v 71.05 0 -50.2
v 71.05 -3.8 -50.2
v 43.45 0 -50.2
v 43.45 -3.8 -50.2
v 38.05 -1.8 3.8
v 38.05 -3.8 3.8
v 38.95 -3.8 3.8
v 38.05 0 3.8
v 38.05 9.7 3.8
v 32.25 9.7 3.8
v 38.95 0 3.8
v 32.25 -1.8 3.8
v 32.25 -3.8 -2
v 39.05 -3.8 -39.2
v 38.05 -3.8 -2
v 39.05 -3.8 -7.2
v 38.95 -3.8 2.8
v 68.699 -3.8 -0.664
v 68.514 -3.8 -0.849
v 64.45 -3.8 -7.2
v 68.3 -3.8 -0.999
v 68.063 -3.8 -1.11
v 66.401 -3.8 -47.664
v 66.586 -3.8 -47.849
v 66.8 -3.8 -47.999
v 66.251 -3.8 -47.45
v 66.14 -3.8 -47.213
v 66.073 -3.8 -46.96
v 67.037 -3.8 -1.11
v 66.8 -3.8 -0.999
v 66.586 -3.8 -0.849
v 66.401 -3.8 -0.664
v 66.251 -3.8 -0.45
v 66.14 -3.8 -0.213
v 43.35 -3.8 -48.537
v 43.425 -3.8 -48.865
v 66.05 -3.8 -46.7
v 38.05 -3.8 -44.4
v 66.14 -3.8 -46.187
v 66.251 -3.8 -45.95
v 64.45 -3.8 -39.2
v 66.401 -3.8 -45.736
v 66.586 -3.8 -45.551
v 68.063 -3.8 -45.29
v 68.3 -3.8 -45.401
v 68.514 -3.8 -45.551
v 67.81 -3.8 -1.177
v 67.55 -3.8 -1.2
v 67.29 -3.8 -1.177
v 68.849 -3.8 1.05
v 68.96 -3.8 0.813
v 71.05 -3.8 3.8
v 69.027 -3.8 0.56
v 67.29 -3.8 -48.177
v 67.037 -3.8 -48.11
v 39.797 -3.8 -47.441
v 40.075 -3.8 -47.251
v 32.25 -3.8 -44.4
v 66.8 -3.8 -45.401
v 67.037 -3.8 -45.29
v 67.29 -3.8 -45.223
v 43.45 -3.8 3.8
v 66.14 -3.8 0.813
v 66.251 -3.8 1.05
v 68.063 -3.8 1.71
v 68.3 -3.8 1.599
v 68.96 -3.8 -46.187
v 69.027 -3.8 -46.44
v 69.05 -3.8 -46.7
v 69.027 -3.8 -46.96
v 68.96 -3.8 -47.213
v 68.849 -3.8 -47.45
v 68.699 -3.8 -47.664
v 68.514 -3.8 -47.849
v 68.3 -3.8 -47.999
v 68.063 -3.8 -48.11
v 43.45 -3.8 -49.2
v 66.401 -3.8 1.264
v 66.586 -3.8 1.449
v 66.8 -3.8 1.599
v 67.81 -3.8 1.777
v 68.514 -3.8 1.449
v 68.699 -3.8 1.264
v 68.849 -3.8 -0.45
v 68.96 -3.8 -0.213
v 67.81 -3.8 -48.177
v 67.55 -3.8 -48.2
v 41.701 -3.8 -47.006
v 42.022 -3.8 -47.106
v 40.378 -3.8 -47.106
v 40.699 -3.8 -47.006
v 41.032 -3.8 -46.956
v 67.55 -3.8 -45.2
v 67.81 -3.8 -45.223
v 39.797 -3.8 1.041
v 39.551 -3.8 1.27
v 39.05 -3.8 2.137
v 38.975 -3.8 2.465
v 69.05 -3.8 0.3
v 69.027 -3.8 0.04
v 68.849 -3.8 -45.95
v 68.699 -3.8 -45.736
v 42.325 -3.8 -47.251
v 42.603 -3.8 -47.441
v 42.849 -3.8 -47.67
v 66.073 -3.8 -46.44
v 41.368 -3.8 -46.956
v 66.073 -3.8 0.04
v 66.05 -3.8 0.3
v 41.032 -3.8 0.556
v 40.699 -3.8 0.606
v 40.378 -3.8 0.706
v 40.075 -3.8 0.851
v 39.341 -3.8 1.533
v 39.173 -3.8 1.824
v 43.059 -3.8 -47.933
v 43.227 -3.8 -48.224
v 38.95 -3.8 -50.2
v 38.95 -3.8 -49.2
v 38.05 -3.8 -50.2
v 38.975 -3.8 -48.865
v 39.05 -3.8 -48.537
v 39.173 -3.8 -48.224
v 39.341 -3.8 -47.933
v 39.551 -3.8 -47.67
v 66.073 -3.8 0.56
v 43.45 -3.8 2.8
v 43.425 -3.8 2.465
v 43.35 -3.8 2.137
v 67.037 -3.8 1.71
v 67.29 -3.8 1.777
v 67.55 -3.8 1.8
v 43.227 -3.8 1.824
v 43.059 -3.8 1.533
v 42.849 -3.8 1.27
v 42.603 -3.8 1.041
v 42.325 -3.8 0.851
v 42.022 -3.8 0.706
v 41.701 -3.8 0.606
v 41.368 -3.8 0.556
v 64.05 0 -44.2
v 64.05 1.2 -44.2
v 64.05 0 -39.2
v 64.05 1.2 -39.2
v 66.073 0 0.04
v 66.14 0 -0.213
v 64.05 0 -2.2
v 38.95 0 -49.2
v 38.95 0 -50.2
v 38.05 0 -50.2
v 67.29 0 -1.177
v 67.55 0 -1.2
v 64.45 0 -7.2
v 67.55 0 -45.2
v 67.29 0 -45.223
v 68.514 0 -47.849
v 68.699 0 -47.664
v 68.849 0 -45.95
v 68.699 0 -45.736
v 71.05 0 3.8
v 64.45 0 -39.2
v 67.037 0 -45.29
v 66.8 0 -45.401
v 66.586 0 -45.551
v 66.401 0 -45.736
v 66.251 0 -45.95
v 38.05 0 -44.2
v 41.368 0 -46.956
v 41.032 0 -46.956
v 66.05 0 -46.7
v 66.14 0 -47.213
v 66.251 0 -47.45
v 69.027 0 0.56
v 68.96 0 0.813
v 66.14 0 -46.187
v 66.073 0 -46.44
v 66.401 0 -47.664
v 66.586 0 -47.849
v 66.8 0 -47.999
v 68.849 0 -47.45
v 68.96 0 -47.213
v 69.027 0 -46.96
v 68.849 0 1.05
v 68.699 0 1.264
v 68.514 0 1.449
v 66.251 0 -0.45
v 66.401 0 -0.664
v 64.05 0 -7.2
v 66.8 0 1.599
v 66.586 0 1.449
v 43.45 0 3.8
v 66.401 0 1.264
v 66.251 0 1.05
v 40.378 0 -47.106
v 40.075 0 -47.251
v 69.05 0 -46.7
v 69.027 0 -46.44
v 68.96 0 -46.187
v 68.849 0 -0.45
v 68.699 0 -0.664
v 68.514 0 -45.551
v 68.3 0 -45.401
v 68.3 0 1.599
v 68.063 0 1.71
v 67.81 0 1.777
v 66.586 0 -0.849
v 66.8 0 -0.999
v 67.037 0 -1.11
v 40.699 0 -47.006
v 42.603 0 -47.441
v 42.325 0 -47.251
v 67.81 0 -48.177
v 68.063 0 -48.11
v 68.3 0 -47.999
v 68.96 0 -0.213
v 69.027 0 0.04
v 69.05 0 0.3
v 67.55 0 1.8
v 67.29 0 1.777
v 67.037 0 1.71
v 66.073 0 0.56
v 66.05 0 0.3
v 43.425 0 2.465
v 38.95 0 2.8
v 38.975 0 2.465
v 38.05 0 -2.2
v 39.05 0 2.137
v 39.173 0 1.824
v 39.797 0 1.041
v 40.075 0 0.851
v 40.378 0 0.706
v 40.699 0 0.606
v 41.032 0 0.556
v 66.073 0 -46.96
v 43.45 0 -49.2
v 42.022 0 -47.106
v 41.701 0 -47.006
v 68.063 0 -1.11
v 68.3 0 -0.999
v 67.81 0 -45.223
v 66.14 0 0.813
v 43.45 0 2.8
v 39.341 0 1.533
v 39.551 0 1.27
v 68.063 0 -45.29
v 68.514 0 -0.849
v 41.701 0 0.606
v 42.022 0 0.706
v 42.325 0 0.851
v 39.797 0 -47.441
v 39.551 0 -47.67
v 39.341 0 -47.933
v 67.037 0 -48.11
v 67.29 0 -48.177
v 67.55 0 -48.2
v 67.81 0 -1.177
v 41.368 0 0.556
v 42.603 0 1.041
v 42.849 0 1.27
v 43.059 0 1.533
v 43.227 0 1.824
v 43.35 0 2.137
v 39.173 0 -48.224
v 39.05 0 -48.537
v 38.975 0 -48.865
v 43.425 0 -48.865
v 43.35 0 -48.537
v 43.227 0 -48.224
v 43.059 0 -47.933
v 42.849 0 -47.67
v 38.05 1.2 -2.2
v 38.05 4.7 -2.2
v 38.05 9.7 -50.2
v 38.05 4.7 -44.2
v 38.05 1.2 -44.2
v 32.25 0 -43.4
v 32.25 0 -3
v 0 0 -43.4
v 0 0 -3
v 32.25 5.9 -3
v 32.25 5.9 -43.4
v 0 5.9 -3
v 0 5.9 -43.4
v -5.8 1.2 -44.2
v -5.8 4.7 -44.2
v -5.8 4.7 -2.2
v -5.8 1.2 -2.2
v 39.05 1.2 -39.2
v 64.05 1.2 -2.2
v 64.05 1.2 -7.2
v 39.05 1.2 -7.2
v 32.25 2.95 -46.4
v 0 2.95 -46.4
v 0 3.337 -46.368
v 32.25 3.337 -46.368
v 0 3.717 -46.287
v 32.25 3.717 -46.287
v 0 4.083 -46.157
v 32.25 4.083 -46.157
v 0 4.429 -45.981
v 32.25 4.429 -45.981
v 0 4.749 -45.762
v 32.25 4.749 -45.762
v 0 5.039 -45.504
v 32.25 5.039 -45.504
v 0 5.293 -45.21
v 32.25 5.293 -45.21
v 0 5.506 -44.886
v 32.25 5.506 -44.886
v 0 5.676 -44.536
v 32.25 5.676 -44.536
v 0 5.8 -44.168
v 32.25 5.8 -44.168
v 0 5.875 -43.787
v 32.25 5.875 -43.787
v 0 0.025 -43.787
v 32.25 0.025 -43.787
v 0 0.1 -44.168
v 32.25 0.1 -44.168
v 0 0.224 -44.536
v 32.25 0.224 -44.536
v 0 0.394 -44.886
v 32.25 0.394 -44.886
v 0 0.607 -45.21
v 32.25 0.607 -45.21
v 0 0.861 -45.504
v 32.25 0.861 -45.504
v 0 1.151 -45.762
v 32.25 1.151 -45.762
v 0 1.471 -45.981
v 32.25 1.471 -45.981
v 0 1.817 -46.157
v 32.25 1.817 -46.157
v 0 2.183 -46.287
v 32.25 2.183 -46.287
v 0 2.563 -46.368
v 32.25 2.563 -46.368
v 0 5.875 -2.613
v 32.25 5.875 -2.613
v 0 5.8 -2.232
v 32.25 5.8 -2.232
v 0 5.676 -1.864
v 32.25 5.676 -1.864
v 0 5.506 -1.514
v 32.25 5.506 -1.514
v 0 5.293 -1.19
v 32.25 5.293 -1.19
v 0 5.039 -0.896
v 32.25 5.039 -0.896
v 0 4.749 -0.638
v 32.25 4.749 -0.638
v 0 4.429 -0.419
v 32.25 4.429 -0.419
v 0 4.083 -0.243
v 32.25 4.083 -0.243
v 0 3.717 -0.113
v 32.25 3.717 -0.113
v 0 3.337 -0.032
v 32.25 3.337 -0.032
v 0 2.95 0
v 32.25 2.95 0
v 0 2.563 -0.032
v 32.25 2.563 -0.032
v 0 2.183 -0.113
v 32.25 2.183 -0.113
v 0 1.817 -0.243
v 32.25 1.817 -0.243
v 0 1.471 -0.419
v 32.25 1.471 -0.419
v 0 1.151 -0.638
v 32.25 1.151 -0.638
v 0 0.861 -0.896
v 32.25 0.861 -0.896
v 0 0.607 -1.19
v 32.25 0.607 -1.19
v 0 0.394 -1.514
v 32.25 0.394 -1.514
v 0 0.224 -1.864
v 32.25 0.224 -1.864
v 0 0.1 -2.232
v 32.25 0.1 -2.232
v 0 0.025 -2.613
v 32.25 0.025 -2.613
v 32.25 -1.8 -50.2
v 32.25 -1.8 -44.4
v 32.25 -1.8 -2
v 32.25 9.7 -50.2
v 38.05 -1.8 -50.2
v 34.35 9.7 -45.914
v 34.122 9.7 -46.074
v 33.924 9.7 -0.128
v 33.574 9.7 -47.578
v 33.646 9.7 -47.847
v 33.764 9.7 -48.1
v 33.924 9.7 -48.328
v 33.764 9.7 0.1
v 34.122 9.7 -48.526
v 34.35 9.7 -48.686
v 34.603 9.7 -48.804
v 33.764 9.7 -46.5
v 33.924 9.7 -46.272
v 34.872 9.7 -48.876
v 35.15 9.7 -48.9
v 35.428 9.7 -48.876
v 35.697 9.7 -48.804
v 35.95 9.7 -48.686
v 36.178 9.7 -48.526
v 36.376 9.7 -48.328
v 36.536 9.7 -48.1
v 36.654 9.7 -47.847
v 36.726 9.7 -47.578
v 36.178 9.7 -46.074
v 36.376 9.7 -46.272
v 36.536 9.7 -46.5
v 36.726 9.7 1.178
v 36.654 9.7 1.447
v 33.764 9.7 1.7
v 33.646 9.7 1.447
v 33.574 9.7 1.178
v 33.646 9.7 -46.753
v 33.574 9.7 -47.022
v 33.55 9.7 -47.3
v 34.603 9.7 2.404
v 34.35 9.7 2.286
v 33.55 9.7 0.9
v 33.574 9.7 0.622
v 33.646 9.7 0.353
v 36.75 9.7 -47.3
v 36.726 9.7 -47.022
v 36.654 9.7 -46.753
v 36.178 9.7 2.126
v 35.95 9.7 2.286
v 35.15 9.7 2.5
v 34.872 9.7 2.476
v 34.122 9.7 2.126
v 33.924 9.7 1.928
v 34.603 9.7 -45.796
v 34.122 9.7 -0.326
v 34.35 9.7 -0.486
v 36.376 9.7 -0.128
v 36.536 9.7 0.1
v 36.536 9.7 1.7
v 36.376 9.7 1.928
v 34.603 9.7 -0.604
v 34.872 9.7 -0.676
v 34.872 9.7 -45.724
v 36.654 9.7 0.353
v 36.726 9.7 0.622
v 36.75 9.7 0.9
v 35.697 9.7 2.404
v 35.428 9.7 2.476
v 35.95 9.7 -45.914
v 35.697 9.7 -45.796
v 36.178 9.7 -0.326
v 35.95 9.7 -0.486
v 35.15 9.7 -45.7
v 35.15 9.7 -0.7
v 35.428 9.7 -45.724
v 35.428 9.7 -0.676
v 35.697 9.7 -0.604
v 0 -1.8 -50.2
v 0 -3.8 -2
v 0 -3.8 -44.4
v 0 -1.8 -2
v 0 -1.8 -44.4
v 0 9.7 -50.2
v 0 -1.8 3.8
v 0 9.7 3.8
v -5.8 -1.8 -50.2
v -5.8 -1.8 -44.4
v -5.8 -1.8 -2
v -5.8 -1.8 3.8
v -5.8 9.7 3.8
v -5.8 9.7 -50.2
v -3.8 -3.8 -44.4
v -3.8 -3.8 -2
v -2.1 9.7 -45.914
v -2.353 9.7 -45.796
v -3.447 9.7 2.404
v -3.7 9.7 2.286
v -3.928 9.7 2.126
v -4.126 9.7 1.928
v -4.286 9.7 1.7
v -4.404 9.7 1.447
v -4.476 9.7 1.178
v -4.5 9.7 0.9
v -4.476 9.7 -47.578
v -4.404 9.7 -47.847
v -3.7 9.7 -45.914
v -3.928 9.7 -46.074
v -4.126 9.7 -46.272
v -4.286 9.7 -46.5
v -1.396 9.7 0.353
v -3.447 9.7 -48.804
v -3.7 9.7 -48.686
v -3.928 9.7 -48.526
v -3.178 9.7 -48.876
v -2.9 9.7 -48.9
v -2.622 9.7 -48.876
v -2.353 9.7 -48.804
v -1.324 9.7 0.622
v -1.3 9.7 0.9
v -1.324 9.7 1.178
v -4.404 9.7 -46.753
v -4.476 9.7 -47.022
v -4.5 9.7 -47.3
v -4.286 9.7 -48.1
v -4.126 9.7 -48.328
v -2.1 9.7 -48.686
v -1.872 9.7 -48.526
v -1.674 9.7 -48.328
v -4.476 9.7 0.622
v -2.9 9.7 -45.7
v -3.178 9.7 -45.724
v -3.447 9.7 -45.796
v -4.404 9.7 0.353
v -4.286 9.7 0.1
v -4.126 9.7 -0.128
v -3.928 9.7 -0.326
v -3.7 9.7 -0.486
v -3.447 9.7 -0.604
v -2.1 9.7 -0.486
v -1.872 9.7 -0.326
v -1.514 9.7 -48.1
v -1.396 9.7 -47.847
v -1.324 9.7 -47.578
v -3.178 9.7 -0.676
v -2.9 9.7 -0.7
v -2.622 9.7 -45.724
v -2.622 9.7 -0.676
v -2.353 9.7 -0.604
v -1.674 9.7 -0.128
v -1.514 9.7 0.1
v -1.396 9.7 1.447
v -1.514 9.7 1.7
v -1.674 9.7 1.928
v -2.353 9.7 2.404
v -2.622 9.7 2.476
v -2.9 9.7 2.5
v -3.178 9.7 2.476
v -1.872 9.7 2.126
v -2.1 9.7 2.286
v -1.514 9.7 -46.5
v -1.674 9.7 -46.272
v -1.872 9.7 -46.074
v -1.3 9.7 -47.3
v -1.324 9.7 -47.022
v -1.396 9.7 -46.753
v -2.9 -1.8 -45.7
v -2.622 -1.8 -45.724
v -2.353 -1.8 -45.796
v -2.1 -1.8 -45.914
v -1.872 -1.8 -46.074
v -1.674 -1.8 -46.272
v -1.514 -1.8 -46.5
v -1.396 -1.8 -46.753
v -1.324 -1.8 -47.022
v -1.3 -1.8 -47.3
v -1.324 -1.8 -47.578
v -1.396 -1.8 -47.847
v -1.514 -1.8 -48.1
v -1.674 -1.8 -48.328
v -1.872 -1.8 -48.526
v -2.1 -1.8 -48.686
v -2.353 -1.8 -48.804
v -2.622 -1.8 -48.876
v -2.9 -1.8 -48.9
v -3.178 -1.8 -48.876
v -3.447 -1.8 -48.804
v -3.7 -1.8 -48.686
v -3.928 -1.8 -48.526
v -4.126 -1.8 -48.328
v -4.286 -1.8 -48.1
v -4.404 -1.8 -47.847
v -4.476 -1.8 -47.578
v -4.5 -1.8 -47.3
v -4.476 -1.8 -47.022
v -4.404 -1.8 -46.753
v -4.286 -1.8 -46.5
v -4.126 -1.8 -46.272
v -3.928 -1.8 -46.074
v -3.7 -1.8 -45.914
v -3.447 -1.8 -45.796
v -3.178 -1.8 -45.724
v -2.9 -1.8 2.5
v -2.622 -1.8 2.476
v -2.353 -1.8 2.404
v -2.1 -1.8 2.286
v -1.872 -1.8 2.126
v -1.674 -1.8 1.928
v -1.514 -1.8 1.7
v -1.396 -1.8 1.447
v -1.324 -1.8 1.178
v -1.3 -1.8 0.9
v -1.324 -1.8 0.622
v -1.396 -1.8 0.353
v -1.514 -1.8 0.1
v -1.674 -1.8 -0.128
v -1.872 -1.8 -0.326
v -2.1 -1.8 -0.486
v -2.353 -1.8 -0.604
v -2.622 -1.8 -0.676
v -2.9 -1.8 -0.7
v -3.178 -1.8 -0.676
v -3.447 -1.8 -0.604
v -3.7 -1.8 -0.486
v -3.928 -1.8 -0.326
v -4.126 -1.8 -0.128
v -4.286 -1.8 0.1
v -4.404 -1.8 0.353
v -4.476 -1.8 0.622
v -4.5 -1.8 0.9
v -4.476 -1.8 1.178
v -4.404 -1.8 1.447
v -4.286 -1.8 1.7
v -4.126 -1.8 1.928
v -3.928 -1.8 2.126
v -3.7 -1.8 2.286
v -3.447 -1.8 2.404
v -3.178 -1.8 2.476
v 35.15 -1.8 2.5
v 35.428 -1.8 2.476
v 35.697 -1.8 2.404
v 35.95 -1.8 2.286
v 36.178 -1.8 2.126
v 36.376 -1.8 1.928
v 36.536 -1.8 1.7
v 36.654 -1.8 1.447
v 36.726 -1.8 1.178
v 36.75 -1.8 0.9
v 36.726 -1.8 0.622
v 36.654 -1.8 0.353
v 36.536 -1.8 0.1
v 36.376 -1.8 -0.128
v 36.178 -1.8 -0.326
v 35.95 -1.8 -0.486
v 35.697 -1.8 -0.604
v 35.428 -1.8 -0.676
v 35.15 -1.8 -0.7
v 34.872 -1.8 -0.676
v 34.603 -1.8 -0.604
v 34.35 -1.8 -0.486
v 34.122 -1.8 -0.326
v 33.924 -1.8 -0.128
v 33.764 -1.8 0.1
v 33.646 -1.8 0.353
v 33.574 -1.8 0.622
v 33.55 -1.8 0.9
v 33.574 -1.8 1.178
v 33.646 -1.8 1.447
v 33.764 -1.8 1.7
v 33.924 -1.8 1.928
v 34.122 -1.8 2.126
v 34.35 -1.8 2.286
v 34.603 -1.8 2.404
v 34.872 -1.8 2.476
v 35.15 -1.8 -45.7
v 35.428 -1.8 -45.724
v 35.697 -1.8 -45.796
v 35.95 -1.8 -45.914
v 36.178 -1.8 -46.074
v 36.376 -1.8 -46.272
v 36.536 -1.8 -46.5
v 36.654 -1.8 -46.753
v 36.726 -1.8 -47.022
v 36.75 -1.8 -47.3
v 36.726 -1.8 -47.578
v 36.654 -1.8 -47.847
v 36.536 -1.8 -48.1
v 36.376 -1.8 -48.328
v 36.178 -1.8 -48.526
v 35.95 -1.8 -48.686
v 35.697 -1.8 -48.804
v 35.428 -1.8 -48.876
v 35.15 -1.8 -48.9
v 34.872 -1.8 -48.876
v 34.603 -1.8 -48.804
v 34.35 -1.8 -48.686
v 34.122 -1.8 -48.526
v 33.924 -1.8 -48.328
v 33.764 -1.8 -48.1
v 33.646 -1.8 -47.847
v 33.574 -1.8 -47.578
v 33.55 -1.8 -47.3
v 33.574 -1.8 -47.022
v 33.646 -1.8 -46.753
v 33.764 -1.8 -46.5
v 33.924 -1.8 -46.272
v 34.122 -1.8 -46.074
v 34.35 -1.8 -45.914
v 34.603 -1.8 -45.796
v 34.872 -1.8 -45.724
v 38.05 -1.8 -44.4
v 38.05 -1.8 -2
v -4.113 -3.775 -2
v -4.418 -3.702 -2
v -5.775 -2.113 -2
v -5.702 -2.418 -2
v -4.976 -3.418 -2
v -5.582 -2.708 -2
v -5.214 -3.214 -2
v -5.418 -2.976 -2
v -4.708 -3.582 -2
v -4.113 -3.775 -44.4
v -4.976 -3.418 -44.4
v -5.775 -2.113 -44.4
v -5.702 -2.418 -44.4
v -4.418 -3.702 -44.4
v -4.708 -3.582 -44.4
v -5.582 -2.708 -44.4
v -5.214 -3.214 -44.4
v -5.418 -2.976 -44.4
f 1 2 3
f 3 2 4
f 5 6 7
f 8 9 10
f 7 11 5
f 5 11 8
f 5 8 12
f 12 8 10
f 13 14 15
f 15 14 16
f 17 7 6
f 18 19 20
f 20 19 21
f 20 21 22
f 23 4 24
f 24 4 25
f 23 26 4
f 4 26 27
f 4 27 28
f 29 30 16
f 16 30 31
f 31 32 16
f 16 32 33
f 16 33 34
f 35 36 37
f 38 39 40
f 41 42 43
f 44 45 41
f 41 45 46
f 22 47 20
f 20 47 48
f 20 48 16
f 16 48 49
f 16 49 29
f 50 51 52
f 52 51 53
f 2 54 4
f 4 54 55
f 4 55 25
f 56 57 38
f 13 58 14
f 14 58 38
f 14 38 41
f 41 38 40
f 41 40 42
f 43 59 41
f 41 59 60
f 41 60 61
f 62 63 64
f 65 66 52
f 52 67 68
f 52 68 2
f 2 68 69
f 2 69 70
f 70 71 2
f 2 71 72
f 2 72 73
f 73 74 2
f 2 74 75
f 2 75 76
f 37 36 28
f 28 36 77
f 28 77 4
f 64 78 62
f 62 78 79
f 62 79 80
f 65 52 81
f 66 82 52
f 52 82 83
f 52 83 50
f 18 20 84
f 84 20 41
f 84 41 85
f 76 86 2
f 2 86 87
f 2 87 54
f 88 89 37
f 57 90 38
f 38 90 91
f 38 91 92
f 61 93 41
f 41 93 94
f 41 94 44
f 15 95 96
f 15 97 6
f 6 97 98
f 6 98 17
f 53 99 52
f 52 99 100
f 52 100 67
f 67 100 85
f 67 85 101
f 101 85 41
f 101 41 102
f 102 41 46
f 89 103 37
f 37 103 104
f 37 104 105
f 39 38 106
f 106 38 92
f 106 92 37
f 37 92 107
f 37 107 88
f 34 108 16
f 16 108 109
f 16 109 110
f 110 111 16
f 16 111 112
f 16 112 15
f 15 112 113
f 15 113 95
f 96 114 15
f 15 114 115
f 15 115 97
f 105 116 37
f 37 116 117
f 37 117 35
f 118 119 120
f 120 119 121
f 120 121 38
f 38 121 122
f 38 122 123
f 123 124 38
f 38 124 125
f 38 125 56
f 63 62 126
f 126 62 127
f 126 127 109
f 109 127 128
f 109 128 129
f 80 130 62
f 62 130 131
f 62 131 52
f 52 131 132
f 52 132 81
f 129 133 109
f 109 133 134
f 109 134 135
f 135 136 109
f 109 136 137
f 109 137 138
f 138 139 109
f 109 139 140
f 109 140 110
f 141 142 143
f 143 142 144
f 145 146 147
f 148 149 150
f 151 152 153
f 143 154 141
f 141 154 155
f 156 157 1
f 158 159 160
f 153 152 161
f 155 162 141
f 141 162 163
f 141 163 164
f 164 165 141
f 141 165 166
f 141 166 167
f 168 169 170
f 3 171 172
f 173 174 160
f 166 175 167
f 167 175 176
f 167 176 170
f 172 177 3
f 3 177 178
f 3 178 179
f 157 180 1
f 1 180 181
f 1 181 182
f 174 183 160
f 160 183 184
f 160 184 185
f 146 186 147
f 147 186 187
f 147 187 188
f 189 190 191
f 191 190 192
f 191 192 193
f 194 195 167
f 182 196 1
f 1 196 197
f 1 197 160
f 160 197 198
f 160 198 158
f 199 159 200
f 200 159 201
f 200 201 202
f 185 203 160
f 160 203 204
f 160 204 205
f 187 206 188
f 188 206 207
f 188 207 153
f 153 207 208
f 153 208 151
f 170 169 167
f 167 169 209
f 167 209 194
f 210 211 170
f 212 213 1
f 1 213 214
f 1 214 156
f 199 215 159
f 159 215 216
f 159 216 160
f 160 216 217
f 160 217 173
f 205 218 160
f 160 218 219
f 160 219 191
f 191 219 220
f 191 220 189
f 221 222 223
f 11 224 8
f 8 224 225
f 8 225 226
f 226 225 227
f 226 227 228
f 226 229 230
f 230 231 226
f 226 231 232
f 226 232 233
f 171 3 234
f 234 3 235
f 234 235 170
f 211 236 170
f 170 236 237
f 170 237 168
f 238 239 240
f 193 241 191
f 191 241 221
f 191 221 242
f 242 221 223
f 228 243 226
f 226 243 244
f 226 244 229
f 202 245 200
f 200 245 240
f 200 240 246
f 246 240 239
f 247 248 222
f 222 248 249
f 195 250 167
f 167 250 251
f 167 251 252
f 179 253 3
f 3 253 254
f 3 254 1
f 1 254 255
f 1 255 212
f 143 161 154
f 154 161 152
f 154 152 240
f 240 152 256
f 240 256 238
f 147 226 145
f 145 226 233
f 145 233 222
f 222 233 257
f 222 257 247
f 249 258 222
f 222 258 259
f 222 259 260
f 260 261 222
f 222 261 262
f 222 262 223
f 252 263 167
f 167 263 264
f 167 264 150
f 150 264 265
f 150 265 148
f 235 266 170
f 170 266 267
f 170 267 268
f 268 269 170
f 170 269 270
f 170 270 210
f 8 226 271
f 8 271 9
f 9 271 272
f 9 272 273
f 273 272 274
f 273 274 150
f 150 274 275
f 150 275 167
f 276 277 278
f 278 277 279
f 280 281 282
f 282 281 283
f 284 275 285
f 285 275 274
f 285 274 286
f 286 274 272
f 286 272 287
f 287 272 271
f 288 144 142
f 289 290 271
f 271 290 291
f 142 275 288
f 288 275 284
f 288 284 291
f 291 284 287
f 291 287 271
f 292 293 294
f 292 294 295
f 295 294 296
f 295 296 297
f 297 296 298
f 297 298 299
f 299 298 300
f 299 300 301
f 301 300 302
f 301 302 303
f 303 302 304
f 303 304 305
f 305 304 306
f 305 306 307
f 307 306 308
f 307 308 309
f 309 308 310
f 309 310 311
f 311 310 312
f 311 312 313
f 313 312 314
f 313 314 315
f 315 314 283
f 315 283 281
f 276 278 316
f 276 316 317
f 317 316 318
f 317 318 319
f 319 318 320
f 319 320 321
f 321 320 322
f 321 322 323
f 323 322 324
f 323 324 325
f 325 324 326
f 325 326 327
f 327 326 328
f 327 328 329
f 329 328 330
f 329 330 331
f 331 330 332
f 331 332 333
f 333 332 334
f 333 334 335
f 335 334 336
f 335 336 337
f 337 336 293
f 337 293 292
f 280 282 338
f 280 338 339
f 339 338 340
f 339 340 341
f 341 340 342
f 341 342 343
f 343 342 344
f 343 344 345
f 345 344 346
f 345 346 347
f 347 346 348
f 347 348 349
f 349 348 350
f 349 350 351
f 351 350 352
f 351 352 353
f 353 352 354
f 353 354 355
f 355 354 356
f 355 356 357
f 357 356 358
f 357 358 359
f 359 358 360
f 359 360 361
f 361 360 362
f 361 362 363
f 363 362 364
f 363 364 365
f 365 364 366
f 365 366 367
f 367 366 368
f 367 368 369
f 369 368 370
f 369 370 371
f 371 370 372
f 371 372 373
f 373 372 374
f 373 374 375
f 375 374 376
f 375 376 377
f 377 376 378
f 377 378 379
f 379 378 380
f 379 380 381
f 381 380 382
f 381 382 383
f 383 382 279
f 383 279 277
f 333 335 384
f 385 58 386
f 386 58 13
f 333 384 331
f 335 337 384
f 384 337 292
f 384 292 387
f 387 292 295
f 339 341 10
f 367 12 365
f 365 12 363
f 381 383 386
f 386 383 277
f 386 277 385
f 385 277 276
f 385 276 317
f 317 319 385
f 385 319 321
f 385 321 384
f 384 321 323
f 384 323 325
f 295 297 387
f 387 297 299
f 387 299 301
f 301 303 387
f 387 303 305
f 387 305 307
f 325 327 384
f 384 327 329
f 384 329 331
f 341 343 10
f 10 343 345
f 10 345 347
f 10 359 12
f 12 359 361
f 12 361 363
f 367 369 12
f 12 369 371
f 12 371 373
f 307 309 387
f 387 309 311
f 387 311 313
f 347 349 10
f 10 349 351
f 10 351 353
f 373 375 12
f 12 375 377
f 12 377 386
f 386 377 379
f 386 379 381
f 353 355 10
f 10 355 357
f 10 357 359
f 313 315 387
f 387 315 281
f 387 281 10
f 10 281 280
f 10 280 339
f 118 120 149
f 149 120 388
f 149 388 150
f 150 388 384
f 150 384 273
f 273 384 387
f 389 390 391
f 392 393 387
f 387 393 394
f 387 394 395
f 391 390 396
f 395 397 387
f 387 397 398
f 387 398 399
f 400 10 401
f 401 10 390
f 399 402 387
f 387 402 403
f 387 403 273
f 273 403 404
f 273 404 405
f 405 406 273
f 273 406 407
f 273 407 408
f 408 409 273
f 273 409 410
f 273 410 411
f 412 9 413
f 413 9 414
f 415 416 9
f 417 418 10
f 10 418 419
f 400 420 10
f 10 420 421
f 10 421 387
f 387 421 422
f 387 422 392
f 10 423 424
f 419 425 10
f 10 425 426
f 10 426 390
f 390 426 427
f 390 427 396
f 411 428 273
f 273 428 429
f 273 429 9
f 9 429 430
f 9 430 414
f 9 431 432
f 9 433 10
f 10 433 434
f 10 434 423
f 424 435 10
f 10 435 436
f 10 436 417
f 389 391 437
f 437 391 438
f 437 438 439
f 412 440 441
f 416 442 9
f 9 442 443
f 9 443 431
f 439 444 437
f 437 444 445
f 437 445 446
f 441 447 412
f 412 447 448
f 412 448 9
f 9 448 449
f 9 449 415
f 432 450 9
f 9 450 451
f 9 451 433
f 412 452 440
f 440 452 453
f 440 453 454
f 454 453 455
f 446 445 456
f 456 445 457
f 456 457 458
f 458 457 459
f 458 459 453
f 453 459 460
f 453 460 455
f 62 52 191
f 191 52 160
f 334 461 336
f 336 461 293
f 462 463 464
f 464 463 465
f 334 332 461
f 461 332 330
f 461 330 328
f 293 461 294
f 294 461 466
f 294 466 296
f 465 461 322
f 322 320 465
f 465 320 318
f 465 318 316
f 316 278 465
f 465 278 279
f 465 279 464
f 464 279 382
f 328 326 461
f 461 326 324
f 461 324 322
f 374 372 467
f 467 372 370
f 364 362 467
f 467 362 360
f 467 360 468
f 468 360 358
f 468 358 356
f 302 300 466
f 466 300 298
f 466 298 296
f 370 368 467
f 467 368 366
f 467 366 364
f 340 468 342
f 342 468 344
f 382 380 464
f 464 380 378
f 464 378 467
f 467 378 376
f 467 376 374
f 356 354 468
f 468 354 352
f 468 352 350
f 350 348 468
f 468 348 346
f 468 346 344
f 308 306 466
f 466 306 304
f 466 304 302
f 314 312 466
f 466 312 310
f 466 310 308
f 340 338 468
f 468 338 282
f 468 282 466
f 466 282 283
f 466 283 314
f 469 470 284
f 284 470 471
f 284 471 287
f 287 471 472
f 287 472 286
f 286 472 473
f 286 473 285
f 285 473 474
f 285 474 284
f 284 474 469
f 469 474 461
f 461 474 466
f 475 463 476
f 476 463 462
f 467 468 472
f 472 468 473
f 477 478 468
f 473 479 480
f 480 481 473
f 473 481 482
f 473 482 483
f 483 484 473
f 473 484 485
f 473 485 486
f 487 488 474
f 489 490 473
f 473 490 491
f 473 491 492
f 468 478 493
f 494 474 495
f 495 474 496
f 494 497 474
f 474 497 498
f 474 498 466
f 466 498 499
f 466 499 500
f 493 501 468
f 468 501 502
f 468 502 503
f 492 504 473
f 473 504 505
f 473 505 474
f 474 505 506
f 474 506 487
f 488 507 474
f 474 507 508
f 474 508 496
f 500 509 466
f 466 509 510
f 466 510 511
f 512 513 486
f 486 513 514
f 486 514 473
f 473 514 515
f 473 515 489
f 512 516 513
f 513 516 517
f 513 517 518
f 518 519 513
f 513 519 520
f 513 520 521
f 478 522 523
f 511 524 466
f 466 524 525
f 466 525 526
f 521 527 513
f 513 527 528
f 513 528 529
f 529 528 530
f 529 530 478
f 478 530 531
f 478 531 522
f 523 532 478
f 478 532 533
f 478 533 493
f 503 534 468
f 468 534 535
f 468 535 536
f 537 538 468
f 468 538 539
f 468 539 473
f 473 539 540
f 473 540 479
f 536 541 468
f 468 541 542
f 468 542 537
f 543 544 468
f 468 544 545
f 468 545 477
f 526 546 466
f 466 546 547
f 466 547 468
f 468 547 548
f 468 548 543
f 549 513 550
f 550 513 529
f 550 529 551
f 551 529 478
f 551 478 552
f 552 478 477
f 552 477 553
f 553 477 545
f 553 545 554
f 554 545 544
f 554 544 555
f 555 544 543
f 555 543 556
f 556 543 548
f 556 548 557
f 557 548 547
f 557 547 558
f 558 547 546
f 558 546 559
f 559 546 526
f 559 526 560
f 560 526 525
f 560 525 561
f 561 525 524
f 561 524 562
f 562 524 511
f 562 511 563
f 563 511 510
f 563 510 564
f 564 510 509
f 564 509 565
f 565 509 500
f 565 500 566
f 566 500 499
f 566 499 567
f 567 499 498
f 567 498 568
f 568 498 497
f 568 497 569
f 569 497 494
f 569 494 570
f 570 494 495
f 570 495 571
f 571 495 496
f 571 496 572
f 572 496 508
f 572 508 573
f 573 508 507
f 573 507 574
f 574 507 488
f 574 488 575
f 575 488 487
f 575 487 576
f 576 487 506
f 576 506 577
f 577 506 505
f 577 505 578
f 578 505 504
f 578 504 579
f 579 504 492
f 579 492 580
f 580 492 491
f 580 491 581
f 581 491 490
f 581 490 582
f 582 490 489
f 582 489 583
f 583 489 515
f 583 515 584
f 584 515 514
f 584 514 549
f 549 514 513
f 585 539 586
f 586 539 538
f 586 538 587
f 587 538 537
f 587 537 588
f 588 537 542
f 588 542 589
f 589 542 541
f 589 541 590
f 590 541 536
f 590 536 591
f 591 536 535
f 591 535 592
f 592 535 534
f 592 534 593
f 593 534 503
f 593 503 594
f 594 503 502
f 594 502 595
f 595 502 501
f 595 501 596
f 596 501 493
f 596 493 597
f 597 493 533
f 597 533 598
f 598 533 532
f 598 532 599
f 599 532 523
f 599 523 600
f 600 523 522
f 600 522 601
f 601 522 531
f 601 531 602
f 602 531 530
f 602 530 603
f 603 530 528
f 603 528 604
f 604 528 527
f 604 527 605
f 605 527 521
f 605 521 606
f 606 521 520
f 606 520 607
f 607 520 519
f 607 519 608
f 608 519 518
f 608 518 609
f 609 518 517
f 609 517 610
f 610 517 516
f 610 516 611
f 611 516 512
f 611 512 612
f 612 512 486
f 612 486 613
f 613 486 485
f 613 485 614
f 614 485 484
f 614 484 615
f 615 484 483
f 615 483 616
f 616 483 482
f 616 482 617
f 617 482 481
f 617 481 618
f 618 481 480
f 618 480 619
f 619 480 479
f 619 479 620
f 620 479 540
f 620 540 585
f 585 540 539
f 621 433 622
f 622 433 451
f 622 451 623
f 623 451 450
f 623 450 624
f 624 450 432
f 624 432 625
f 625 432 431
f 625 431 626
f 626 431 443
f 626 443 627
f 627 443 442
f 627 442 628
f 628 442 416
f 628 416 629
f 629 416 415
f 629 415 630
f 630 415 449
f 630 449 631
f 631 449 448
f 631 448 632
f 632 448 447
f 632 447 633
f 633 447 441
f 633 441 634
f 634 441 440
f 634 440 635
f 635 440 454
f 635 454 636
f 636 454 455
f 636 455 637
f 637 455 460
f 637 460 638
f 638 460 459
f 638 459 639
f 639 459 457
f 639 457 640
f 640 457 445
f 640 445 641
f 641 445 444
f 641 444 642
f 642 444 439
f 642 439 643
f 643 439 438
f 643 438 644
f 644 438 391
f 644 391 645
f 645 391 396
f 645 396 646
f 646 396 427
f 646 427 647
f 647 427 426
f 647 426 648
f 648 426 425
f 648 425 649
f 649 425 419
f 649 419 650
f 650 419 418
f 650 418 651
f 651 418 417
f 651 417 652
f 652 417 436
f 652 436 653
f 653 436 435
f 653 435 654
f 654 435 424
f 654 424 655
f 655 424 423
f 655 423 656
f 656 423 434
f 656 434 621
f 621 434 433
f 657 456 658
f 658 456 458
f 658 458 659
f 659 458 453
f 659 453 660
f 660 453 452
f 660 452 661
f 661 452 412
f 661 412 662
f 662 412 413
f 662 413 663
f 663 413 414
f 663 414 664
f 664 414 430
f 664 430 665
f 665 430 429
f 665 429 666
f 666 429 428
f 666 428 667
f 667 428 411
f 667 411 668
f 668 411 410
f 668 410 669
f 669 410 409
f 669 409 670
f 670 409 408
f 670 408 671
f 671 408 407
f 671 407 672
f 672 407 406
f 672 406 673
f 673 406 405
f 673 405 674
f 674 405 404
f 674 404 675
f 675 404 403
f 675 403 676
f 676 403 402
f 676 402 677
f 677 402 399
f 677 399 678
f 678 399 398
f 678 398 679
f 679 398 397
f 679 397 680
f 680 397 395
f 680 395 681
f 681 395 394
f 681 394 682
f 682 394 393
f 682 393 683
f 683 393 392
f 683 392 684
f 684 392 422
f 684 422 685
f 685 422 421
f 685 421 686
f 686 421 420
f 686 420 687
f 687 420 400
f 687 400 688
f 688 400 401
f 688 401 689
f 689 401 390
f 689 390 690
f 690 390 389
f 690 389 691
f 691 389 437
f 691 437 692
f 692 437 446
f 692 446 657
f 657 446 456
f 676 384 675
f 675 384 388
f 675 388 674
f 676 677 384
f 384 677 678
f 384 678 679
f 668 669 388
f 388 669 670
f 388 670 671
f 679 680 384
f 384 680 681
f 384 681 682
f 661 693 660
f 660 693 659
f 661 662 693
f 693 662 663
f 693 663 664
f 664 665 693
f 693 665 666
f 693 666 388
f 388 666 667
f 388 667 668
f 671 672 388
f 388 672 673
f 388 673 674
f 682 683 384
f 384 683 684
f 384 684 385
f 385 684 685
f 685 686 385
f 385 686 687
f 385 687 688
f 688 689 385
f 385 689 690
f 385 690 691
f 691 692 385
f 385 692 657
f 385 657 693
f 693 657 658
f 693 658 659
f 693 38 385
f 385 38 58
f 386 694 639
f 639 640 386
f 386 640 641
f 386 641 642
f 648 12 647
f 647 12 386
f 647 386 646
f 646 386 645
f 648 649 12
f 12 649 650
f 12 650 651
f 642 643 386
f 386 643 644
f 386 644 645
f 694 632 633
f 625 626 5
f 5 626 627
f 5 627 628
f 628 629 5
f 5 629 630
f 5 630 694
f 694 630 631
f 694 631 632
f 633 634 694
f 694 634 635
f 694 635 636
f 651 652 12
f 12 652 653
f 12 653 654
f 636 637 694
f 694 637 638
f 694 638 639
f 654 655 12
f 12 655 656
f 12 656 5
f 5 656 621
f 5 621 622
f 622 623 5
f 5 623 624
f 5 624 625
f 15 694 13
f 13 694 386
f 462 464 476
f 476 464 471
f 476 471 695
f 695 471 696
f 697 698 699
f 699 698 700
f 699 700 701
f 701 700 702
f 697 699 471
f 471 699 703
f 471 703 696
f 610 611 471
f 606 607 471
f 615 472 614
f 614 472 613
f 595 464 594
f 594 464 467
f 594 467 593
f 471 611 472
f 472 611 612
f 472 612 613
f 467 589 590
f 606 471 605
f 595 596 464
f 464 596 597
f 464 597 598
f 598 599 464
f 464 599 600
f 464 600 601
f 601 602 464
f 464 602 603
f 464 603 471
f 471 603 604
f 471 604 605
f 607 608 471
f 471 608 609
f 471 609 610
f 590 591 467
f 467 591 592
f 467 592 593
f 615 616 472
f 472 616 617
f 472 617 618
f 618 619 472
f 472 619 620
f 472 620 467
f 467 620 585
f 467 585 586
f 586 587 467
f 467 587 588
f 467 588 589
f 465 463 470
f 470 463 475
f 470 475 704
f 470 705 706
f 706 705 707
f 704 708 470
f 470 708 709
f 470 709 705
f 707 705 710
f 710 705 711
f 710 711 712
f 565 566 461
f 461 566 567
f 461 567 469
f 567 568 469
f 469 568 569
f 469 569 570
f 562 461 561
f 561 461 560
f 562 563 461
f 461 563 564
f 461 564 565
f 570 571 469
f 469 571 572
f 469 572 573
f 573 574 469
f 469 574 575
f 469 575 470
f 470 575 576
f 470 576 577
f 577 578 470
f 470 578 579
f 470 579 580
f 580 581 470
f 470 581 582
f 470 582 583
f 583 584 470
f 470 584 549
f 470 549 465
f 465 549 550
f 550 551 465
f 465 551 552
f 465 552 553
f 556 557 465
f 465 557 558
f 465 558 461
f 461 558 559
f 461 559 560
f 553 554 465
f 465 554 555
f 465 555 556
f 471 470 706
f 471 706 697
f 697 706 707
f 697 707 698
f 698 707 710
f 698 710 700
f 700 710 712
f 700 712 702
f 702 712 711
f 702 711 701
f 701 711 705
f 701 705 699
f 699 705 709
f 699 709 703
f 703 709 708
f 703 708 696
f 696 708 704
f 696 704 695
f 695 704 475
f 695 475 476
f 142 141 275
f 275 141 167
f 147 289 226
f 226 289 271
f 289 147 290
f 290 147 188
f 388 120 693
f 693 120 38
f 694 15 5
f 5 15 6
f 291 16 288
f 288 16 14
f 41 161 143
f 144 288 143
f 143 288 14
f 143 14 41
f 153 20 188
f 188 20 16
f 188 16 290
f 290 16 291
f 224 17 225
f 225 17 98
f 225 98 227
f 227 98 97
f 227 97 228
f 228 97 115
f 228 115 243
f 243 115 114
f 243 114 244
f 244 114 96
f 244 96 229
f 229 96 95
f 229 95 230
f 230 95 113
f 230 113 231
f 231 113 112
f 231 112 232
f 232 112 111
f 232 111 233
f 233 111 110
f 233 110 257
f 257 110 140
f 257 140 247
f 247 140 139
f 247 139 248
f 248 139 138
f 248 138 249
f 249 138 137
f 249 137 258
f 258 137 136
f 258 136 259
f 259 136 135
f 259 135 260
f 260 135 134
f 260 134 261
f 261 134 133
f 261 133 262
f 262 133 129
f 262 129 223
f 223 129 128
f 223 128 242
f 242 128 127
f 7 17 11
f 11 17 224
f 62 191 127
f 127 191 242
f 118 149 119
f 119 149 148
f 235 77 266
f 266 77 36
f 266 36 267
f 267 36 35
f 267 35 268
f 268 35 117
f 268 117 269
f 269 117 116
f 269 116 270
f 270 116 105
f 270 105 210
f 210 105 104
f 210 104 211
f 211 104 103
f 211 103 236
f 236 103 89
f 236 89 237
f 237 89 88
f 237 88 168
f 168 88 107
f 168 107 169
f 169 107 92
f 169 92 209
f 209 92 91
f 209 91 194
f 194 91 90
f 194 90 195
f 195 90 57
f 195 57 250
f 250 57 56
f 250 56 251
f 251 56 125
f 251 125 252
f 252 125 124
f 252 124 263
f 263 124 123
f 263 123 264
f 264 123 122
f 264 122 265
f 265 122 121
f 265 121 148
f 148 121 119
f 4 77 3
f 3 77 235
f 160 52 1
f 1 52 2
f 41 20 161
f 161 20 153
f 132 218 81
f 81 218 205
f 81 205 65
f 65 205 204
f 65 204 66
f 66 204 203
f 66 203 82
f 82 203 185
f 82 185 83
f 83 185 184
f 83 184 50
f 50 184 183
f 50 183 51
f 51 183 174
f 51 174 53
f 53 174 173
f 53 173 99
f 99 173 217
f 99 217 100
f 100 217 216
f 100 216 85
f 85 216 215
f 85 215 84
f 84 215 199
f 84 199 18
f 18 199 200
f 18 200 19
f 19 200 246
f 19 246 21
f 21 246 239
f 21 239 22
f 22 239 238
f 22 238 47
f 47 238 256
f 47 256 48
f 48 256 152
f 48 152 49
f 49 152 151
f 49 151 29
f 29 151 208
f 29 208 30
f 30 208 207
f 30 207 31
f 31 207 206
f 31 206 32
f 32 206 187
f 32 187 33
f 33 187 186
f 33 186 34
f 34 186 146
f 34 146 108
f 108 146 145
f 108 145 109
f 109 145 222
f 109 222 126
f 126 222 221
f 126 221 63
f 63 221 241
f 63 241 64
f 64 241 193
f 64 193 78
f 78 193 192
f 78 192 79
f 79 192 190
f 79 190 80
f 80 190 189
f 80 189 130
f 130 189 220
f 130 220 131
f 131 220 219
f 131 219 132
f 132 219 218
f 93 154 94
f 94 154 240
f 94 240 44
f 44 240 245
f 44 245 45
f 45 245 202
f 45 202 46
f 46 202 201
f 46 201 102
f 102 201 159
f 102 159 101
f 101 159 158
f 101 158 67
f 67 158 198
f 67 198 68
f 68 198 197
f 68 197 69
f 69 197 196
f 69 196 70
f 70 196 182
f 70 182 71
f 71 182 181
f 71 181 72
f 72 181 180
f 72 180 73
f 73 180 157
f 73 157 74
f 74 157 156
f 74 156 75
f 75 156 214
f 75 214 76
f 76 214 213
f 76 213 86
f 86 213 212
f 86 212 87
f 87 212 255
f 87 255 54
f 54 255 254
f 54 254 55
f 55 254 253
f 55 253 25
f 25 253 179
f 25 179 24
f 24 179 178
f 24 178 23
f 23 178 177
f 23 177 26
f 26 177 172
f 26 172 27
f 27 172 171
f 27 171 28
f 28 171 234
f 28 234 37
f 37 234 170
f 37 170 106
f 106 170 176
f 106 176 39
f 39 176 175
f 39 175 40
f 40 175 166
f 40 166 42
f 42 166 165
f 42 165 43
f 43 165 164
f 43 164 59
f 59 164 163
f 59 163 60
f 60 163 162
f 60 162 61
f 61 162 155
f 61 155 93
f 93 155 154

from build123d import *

# Parameters (mm, degrees)
SKETCH1_W           = 46.4
SKETCH1_H           = 5.9
SKETCH1_W_2         = 42
SKETCH1_H_2         = 3.5
BOSS_EXTRUDE1_DEPTH = 32.25
FILLET2_R           = 3
SKETCH2_W           = 54
SKETCH2_H           = 13.5
SKETCH2_W_2         = 42
SKETCH2_H_2         = 3.5
BOSS_EXTRUDE2_DEPTH = 5.8
SKETCH3_W           = 54
SKETCH3_H           = 13.5
SKETCH3_W_2         = 42
SKETCH3_H_2         = 3.5
BOSS_EXTRUDE3_DEPTH = 5.8
SKETCH4_R           = 1.6
CUT_EXTRUDE1_DEPTH  = 65.421211569
SKETCH15_W          = 42
SKETCH15_H          = 3.5
SKETCH15_W_2        = 5.8
SKETCH15_H_2        = 2
CUT_EXTRUDE5_DEPTH  = 68.356903878
FILLET3_R           = 2
SKETCH16_W          = 42
SKETCH16_H          = 1.2
BOSS_EXTRUDE4_DEPTH = 26
SKETCH16_3_W        = 5.8
SKETCH16_3_H        = 2
BOSS_EXTRUDE5_DEPTH = 30
SKETCH17_W          = 29
SKETCH17_H          = 32
CUT_EXTRUDE6_DEPTH  = 10
CUT_EXTRUDE7_DEPTH  = 30
SKETCH19_W          = 3.6
SKETCH19_H          = 32
BOSS_EXTRUDE6_DEPTH = 3.8
SKETCH20_R          = 1.5
CUT_EXTRUDE8_DEPTH  = 88.534179039


with BuildPart() as part:
    # Sketch1 → Boss-Extrude1 (new body)
    with BuildSketch(Plane(origin=(0, 0, 0), x_dir=(0, 0, -1), z_dir=(1, 0, 0))):
        with Locations((23.2, 2.95)):
            Rectangle(SKETCH1_W, SKETCH1_H)
        with Locations((23.2, 2.95)):
            Rectangle(SKETCH1_W_2, SKETCH1_H_2, mode=Mode.SUBTRACT)
    extrude(amount=BOSS_EXTRUDE1_DEPTH)

    # Fillet2
    # the kernel refuses this fillet: 3 mm, written as the material it takes off along each edge
    with BuildSketch(Plane(origin=(-7.5, 0, -46.4), x_dir=(0, 0, 1), z_dir=(1, 0, 0)), Plane(origin=(-7.5, 5.9, 0), x_dir=(0, 0, -1), z_dir=(1, 0, 0)), Plane(origin=(-7.5, 5.9, -46.4), x_dir=(0, -1, 0), z_dir=(1, 0, 0))) as fillet2_piece_1:
        with BuildLine():
            CenterArc((FILLET2_R, -FILLET2_R), FILLET2_R, 90, 90)
            Line((0, -FILLET2_R), (0, 0))
            Line((0, 0), (FILLET2_R, 0))
        make_face()
    extrude(amount=47.25, mode=Mode.SUBTRACT)
    with BuildSketch(Plane(origin=(-7.5, 0, 0), x_dir=(0, 0, -1), z_dir=(1, 0, 0))) as fillet2_piece_2:
        with BuildLine():
            CenterArc((FILLET2_R, FILLET2_R), FILLET2_R, 180, 90)
            Line((0, FILLET2_R), (0, 0))
            Line((0, 0), (FILLET2_R, 0))
        make_face()
    extrude(amount=47.25, mode=Mode.SUBTRACT)

    # Sketch2 → Boss-Extrude2 (add)
    with BuildSketch(Plane(origin=(32.25, 0, 0), x_dir=(0, 0, -1), z_dir=(1, 0, 0))):
        with Locations((23.2, 2.95)):
            Rectangle(SKETCH2_W, SKETCH2_H)
        with Locations((23.2, 2.95)):
            Rectangle(SKETCH2_W_2, SKETCH2_H_2, mode=Mode.SUBTRACT)
    extrude(amount=BOSS_EXTRUDE2_DEPTH)

    # Sketch3 → Boss-Extrude3 (add)
    with BuildSketch(Plane.ZY):
        with Locations((-23.2, 2.95)):
            Rectangle(SKETCH3_W, SKETCH3_H)
        with Locations((-23.2, 2.95)):
            Rectangle(SKETCH3_W_2, SKETCH3_H_2, mode=Mode.SUBTRACT)
    extrude(amount=BOSS_EXTRUDE3_DEPTH)

    # Sketch4 → Cut-Extrude1 (cut, through all)
    with BuildSketch(Plane(origin=(0, 9.7, 0), x_dir=(1, 0, 0), z_dir=(0, 1, 0))):
        with Locations(Location((-2.9, 47.3, 0), (0, 0, 270))):
            Circle(SKETCH4_R)
        with Locations(Location((35.15, 47.3, 0), (0, 0, 270))):
            Circle(SKETCH4_R)
        with Locations(Location((-2.9, -0.9, 0), (0, 0, 270))):
            Circle(SKETCH4_R)
        with Locations(Location((35.15, -0.9, 0), (0, 0, 270))):
            Circle(SKETCH4_R)
    extrude(amount=-CUT_EXTRUDE1_DEPTH, mode=Mode.SUBTRACT)

    # Sketch15 → Cut-Extrude5 (cut, through all)
    with BuildSketch(Plane.ZY.offset(5.8)):
        with Locations((-23.2, 2.95)):
            Rectangle(SKETCH15_W, SKETCH15_H)
        with Locations((-47.3, -2.8)):
            Rectangle(SKETCH15_W_2, SKETCH15_H_2)
        with Locations((0.9, -2.8)):
            Rectangle(SKETCH15_W_2, SKETCH15_H_2)
    extrude(amount=-CUT_EXTRUDE5_DEPTH, mode=Mode.SUBTRACT)

    # Fillet3
    fillet3_edges = [part.edges().sort_by_distance(p)[0] for p in [
        (-5.8, -3.8, -23.2),
    ]]
    fillet(fillet3_edges, radius=FILLET3_R)

    # Sketch16 → Boss-Extrude4 (add)
    with BuildSketch(Plane(origin=(38.05, 0, 0), x_dir=(0, 0, -1), z_dir=(1, 0, 0))):
        with Locations((23.2, 0.6)):
            Rectangle(SKETCH16_W, SKETCH16_H)
    extrude(amount=BOSS_EXTRUDE4_DEPTH)

    # Sketch16<3> → Boss-Extrude5 (add)
    with BuildSketch(Plane(origin=(38.05, 0, 0), x_dir=(0, 0, -1), z_dir=(1, 0, 0))):
        Polygon((2, -1.8), (2, -3.8), (44.4, -3.8), (44.4, -1.8), (50.2, -1.8), (50.2, 0), (44.2, 0), (2.2, 0), (-3.8, 0), (-3.8, -1.8), align=None)
        with Locations((-0.9, -2.8)):
            Rectangle(SKETCH16_3_W, SKETCH16_3_H)
        with Locations((47.3, -2.8)):
            Rectangle(SKETCH16_3_W, SKETCH16_3_H)
    extrude(amount=BOSS_EXTRUDE5_DEPTH)

    # Sketch17 → Cut-Extrude6 (cut)
    with BuildSketch(Plane(origin=(0, 1.2, 0), x_dir=(1, 0, 0), z_dir=(0, 1, 0))):
        with Locations((53.55, 23.2)):
            Rectangle(SKETCH17_W, SKETCH17_H)
    extrude(amount=-CUT_EXTRUDE6_DEPTH, mode=Mode.SUBTRACT)

    # Sketch18 → Cut-Extrude7 (cut)
    with BuildSketch(Plane.XZ.offset(3.8)):
        with BuildLine():
            ThreePointArc((39.184435563, 3.8), (39.00939278, 3.313556237), (38.95, 2.8))
            ThreePointArc((38.95, 2.8), (41.2, 0.55), (43.45, 2.8))
            ThreePointArc((43.45, 2.8), (43.39060722, 3.313556237), (43.215564437, 3.8))
            Line((43.215564437, 3.8), (39.184435563, 3.8))
        make_face()
        with BuildLine():
            ThreePointArc((43.215564437, 3.8), (41.2, 5.05), (39.184435563, 3.8))
            Line((39.184435563, 3.8), (43.215564437, 3.8))
        make_face()
        with BuildLine():
            Line((38.95, 3.8), (38.95, 2.8))
            ThreePointArc((38.95, 2.8), (39.00939278, 3.313556237), (39.184435563, 3.8))
            Line((39.184435563, 3.8), (38.95, 3.8))
        make_face()
        with BuildLine():
            ThreePointArc((43.215564437, 3.8), (43.39060722, 3.313556237), (43.45, 2.8))
            Line((43.45, 2.8), (43.45, 3.8))
            Line((43.45, 3.8), (43.215564437, 3.8))
        make_face()
        with BuildLine():
            ThreePointArc((43.45, -49.2), (41.2, -46.95), (38.95, -49.2))
            ThreePointArc((38.95, -49.2), (39.00939278, -49.713556237), (39.184435563, -50.2))
            Line((39.184435563, -50.2), (43.215564437, -50.2))
            ThreePointArc((43.215564437, -50.2), (43.39060722, -49.713556237), (43.45, -49.2))
        make_face()
        with BuildLine():
            Line((43.215564437, -50.2), (39.184435563, -50.2))
            ThreePointArc((39.184435563, -50.2), (41.2, -51.45), (43.215564437, -50.2))
        make_face()
        with BuildLine():
            ThreePointArc((39.184435563, -50.2), (39.00939278, -49.713556237), (38.95, -49.2))
            Line((38.95, -49.2), (38.95, -50.2))
            Line((38.95, -50.2), (39.184435563, -50.2))
        make_face()
        with BuildLine():
            Line((43.45, -50.2), (43.45, -49.2))
            ThreePointArc((43.45, -49.2), (43.39060722, -49.713556237), (43.215564437, -50.2))
            Line((43.215564437, -50.2), (43.45, -50.2))
        make_face()
    extrude(amount=-CUT_EXTRUDE7_DEPTH, mode=Mode.SUBTRACT)

    # Sketch19 → Boss-Extrude6 (add)
    with BuildSketch(Plane.XZ.offset(3.8)):
        with Locations((66.25, -23.2)):
            Rectangle(SKETCH19_W, SKETCH19_H)
        Polygon((71.05, 3.8), (68.05, 3.8), (68.05, -7.2), (68.05, -39.2), (68.05, -50.2), (71.05, -50.2), align=None)
    extrude(amount=-BOSS_EXTRUDE6_DEPTH)

    # Sketch20 → Cut-Extrude8 (cut, through all)
    with BuildSketch(Plane(origin=(0, 0, 0), x_dir=(1, 0, 0), z_dir=(0, 1, 0))):
        with Locations(Location((67.55, -0.3, 0), (0, 0, 270))):
            Circle(SKETCH20_R)
        with Locations(Location((67.55, 46.7, 0), (0, 0, 270))):
            Circle(SKETCH20_R)
    extrude(amount=-CUT_EXTRUDE8_DEPTH, mode=Mode.SUBTRACT)


solid = part.part
